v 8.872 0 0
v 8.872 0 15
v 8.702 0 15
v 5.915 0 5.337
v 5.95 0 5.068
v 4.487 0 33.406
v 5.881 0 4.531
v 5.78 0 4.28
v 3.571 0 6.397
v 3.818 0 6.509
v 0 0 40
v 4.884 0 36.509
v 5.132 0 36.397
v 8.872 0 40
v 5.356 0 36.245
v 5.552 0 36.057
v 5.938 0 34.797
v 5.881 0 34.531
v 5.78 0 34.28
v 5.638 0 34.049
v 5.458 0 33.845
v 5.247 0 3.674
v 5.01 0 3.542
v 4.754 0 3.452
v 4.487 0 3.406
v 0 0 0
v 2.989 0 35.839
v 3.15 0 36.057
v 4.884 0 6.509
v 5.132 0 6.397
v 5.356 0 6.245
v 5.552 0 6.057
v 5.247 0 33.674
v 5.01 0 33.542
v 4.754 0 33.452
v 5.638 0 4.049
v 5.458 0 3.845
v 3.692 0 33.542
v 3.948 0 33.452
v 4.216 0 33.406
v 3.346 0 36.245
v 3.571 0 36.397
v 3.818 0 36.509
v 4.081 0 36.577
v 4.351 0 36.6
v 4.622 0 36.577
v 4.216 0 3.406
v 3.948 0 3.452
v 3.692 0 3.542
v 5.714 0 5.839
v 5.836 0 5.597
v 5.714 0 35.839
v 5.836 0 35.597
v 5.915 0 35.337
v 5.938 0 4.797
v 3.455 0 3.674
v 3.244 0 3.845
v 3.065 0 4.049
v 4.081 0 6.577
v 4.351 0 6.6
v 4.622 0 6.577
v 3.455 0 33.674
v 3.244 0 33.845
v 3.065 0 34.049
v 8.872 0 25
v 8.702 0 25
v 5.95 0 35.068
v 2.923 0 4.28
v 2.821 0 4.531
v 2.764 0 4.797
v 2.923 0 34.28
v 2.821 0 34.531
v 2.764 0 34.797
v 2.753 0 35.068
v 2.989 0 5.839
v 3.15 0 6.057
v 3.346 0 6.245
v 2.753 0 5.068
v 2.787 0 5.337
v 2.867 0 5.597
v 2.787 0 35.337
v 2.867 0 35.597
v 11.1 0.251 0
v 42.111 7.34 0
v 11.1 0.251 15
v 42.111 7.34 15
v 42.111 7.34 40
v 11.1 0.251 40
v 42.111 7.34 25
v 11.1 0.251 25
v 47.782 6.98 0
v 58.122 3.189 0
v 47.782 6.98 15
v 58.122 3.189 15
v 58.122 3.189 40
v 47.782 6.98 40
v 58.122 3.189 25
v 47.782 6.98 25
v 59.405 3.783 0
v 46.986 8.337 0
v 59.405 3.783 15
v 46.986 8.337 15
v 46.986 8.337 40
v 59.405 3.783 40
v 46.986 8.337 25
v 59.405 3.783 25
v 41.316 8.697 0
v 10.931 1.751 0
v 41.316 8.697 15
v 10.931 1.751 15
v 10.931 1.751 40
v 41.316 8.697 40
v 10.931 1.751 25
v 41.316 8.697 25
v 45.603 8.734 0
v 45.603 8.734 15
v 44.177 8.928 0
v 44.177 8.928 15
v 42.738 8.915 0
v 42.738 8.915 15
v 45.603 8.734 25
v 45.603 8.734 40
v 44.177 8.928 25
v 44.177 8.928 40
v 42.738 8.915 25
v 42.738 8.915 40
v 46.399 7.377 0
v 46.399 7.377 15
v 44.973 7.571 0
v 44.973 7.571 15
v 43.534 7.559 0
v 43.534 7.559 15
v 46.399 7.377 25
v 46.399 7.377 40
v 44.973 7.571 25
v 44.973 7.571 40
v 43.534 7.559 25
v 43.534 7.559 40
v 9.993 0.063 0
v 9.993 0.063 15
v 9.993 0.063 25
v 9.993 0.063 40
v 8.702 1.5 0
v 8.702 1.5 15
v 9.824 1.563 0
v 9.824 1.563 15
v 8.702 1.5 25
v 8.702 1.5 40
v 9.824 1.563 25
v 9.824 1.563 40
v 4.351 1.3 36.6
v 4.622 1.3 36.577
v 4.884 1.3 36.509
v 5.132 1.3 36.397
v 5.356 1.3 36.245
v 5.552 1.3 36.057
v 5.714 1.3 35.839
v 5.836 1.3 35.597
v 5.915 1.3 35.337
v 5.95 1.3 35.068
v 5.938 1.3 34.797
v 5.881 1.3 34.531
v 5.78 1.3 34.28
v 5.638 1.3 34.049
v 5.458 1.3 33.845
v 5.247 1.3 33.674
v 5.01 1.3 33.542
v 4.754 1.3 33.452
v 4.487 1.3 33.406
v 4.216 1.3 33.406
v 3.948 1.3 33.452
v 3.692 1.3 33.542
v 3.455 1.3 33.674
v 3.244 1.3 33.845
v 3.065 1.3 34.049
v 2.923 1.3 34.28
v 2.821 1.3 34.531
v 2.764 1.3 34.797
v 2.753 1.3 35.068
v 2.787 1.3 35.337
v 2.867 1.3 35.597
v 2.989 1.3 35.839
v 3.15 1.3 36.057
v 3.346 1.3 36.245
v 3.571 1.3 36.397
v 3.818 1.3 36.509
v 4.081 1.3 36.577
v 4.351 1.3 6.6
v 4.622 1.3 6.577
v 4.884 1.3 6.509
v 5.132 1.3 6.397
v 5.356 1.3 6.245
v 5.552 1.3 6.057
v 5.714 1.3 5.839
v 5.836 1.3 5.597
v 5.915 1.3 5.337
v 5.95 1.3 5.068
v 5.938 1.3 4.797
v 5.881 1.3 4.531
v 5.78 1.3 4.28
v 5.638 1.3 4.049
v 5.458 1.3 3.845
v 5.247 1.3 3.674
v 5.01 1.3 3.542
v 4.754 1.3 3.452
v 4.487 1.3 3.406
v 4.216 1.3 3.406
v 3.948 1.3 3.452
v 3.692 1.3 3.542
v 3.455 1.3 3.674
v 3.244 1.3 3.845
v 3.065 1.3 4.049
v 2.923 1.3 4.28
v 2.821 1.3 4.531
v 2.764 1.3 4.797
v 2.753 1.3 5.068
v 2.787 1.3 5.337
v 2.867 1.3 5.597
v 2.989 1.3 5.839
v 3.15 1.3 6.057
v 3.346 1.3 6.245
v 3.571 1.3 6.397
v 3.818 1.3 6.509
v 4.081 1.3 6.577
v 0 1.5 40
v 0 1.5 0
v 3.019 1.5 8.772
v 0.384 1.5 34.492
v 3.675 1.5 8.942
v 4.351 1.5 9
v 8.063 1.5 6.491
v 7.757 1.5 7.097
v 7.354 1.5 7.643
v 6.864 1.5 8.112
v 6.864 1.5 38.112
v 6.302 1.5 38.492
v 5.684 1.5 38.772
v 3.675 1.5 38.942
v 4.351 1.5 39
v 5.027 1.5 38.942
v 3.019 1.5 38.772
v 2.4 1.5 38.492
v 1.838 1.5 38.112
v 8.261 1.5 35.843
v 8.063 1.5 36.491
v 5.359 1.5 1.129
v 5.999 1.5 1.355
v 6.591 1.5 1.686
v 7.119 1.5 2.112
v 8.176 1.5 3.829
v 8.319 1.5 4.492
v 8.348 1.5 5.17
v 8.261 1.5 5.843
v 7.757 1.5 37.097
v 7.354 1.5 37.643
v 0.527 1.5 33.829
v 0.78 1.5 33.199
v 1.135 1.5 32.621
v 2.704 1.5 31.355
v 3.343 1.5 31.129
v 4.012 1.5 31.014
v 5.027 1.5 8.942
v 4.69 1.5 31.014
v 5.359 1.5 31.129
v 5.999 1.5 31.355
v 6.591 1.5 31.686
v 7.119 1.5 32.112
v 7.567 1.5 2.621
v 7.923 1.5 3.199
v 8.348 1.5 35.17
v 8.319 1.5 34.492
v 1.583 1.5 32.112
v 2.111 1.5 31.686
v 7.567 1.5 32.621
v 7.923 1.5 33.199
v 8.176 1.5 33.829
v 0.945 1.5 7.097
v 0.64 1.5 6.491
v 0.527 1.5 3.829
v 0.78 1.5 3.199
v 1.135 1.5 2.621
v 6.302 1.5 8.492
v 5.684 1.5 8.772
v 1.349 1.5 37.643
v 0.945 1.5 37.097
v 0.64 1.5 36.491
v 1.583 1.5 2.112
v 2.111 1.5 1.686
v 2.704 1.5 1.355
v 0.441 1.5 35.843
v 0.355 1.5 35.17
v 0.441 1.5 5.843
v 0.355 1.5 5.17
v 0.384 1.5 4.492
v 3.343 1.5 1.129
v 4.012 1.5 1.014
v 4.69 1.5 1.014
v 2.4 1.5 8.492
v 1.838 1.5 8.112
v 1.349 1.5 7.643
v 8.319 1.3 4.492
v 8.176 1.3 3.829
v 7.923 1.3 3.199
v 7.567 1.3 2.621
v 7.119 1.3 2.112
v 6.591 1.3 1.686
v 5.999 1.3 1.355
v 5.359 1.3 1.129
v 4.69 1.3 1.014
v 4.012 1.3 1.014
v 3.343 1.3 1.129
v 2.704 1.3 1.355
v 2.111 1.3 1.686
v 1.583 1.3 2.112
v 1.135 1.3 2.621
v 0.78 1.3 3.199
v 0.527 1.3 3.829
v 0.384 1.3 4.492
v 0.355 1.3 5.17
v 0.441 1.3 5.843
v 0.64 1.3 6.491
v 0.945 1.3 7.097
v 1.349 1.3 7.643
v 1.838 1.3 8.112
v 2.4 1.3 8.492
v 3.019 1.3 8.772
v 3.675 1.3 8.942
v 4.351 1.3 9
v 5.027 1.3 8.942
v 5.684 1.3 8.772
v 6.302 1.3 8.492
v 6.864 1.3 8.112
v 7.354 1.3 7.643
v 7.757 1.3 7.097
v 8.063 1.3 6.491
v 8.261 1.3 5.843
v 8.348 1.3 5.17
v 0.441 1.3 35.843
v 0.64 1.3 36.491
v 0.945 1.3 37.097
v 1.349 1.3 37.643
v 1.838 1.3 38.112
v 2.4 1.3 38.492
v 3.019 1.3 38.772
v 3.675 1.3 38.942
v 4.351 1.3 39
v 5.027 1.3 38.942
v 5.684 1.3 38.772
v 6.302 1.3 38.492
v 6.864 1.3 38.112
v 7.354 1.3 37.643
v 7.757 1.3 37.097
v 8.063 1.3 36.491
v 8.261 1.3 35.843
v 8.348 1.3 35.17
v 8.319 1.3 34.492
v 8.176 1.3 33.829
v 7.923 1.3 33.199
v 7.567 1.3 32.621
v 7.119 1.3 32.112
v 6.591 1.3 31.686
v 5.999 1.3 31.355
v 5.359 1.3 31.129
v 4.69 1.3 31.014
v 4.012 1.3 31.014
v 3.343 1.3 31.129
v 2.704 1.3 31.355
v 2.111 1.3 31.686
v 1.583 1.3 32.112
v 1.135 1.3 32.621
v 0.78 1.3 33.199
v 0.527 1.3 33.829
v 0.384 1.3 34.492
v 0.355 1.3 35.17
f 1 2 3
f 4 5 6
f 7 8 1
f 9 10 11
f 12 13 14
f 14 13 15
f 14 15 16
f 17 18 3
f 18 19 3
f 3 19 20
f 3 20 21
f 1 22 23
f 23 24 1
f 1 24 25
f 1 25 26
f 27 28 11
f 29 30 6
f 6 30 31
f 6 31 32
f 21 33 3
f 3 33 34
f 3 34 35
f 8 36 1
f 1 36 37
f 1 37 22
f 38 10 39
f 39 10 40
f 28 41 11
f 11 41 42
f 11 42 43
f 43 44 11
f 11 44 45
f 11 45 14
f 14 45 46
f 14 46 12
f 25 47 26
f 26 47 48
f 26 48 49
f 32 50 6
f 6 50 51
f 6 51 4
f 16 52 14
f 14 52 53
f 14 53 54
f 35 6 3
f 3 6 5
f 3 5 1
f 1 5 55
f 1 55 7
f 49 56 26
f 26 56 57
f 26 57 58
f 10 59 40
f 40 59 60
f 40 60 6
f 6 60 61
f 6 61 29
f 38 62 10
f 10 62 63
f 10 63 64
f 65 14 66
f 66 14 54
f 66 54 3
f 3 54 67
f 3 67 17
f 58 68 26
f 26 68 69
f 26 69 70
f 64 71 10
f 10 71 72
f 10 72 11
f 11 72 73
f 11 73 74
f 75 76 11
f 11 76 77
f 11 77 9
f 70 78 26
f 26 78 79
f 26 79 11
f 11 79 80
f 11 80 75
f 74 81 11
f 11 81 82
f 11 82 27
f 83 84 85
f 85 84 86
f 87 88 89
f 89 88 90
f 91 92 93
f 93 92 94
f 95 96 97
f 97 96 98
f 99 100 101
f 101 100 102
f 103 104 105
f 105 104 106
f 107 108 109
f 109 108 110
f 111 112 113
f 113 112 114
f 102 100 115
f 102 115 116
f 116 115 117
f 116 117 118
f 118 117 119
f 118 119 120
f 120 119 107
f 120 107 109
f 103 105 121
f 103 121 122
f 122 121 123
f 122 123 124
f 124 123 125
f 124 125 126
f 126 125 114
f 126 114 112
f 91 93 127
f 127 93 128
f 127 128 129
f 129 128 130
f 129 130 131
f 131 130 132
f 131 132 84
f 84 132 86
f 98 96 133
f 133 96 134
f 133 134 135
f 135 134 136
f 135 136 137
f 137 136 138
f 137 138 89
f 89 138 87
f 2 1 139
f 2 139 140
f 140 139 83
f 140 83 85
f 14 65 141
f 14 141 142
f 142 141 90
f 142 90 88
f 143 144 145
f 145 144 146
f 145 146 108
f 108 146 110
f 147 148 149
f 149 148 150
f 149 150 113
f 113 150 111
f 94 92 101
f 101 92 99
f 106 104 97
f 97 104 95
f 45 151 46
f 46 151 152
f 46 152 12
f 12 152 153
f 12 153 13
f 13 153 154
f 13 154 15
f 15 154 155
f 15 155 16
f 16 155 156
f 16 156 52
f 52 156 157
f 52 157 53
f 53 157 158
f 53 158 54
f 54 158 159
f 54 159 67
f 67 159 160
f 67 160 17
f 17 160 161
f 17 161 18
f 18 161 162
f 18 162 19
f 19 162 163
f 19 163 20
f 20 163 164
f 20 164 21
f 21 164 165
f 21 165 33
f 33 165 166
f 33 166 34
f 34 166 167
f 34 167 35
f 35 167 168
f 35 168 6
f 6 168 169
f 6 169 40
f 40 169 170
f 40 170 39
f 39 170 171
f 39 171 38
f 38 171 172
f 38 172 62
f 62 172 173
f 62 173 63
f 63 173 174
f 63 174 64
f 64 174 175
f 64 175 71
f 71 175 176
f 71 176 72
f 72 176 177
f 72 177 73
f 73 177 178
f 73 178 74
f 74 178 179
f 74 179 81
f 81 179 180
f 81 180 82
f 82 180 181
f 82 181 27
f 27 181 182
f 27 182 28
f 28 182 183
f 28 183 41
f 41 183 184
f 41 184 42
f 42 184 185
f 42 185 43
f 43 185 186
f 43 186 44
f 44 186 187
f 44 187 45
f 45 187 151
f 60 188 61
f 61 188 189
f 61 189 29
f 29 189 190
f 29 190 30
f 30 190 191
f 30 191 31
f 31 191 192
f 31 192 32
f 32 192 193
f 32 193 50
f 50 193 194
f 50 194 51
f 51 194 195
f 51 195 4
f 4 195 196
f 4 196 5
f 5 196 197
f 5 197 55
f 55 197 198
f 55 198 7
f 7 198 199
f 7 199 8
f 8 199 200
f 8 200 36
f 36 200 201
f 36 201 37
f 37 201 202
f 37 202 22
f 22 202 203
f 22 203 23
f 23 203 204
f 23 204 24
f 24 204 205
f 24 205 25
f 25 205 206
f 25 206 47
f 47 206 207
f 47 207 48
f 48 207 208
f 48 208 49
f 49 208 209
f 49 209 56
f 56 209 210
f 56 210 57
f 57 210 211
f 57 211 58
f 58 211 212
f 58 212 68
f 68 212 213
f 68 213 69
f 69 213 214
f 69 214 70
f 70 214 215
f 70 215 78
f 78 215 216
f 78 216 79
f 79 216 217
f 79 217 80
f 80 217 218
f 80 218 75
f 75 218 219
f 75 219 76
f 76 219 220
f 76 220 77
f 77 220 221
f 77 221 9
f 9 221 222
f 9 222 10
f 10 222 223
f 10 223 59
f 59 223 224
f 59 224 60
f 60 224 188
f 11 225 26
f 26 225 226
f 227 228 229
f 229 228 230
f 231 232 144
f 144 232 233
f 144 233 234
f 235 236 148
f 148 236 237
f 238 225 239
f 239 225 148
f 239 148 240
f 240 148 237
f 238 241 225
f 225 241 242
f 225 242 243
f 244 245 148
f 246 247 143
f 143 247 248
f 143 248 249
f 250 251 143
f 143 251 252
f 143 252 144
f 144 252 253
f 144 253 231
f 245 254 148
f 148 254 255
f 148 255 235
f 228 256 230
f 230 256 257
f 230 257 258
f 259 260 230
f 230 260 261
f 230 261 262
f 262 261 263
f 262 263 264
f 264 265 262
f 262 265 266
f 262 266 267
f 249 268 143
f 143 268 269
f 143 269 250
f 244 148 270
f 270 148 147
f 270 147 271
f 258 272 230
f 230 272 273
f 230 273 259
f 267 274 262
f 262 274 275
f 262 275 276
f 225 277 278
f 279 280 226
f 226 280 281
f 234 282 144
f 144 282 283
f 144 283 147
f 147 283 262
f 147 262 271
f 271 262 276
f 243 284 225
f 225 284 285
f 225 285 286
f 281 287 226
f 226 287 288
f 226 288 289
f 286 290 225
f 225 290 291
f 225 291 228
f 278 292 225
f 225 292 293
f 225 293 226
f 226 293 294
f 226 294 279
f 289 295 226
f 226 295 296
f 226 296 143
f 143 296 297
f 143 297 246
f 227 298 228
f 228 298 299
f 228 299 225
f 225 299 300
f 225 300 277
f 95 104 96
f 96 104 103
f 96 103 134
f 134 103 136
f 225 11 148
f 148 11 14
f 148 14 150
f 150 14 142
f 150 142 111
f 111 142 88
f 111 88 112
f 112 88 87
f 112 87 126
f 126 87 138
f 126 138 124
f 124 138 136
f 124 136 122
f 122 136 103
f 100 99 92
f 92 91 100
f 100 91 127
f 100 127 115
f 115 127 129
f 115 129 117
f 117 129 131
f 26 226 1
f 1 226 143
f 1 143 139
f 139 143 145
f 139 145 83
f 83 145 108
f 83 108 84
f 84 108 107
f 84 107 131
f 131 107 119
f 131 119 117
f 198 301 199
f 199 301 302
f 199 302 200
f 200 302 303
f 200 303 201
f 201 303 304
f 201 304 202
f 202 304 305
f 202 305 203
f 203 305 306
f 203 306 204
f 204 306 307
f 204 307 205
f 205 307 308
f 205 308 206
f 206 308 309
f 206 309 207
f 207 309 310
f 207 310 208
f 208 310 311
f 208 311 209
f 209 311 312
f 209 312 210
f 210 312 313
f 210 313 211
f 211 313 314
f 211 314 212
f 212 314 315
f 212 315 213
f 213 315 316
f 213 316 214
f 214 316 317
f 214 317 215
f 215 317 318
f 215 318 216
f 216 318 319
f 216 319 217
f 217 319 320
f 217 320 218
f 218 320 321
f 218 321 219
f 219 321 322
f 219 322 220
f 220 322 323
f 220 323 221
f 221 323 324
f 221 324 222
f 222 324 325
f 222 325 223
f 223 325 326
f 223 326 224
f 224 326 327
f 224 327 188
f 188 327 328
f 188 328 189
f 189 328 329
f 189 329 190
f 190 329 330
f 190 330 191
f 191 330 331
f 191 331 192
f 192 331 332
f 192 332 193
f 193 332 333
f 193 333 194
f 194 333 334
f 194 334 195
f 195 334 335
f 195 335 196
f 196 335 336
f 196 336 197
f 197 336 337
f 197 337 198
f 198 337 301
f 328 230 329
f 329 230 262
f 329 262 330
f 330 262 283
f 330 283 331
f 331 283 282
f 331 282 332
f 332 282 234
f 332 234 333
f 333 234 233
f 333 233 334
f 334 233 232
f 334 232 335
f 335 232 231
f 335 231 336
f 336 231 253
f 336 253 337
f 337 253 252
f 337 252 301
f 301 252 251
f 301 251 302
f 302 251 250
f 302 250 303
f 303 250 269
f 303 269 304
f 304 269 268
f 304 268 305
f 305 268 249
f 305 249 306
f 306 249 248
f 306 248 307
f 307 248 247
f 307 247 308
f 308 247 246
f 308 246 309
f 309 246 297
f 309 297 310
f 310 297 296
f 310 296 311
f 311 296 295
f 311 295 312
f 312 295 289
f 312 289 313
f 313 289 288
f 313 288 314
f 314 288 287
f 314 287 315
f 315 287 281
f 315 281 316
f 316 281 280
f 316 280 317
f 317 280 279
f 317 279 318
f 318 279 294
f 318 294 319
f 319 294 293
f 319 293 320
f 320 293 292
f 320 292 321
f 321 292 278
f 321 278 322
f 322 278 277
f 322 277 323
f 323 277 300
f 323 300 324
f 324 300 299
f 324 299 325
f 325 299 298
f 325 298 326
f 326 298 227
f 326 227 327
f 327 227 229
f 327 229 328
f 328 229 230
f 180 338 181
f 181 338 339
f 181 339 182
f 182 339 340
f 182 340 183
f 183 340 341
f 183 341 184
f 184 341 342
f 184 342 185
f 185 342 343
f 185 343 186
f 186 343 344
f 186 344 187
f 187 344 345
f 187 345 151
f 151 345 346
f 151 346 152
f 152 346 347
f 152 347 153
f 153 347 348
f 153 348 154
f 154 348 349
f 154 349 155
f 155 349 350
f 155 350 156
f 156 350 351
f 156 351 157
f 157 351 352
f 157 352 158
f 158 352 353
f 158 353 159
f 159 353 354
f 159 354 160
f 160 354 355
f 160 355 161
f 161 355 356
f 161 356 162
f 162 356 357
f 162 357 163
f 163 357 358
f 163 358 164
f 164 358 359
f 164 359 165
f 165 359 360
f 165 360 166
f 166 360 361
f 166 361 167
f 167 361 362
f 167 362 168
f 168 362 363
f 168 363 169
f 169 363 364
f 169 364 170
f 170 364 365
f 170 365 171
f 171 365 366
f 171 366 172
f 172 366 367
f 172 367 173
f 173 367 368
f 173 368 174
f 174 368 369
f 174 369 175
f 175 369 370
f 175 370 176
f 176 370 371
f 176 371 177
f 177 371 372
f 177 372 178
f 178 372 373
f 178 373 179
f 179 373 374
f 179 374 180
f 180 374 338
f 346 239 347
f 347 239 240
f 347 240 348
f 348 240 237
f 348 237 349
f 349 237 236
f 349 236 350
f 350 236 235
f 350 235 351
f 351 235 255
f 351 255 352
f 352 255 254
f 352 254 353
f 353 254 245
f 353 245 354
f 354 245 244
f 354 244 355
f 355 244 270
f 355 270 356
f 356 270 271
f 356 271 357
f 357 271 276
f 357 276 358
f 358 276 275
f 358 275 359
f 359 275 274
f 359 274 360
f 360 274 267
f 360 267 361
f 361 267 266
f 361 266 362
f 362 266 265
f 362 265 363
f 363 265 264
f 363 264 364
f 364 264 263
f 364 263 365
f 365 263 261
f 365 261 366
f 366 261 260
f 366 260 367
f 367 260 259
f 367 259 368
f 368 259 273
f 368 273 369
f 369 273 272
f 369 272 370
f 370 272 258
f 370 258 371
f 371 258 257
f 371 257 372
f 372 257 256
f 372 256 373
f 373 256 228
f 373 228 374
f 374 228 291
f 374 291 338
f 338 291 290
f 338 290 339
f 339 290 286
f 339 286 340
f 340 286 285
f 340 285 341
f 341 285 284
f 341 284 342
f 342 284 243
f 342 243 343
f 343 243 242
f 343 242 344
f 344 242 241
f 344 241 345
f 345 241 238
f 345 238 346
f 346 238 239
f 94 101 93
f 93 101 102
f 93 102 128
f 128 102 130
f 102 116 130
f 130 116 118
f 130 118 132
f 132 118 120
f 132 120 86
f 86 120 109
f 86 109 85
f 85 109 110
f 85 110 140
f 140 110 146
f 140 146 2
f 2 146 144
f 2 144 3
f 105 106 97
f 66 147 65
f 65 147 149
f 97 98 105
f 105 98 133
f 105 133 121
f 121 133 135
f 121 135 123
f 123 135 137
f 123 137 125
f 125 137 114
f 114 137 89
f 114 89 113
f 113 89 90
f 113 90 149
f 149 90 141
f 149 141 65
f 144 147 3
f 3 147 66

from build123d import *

# Parameters (mm, degrees)
EXTRUDE_1_DEPTH                 = 40
FILLET_1_R                      = 10
CHAMFER_1_SIZE                  = 2
CHAMFER_1_SIZE_2                = 1.558687347
CUT_EXTRUDE_1_REACH             = 74.003
SKETCH_2_R                      = 1.6
SKETCH_3_R                      = 4
CUT_EXTRUDE_2_DEPTH             = 0.2
CUT_EXTRUDE_3_REACH             = 74.003
SKETCH_4_W                      = 50.702932162
SKETCH_4_H                      = 10
CUT_EXTRUDE_3_DIRECTION_2_REACH = 74.003


with BuildPart() as part:
    # 草图1 → 凸台-拉伸1 (new body)
    with BuildSketch(Plane.XY):
        Polygon((0, 0), (10, 0), (45, 8), (60, 2.5), (60, 3.565103021), (44.204382552, 9.356829418), (9.830753848, 1.5), (0, 1.5), align=None)
    extrude(amount=EXTRUDE_1_DEPTH)

    # 圆角1
    fillet_1_edges = [part.edges().sort_by_distance(p)[0] for p in [
        (9.830753848, 1.5, 20),
        (44.204382552, 9.356829418, 20),
        (45, 8, 20),
        (10, 0, 20),
    ]]
    fillet(fillet_1_edges, radius=FILLET_1_R)

    # 倒角1
    # the kernel refuses this chamfer: 2, 1.558687347 mm, written as the material it takes off along each edge
    with BuildSketch(Plane(origin=(60, 2.5, -5.143365976), x_dir=(-0.9479869259850683, 0.31830926496314954, 0), z_dir=(0, 0, 1))) as chamfer_1_piece_1:
        Polygon((CHAMFER_1_SIZE * 0.999621916911, -CHAMFER_1_SIZE * 0.0274958766106), (CHAMFER_1_SIZE_2 * 0.318309265001, -CHAMFER_1_SIZE_2 * 0.947986926099), (0, 0), align=None)
    extrude(amount=50.286731952, mode=Mode.SUBTRACT)

    # 草图2 → 切除-拉伸1 (cut, up to next)
    with BuildSketch(Plane(origin=(0, 1.5, 0), x_dir=(1, 0, 0), z_dir=(0, 1, 0)), mode=Mode.PRIVATE) as cut_extrude_1_sk1:
        with Locations(Location((4.351223085, -5, 0), (0, 0, 270))):
            Circle(SKETCH_2_R)
    cut_extrude_1_tool1 = extrude(cut_extrude_1_sk1.sketch, amount=-CUT_EXTRUDE_1_REACH, mode=Mode.PRIVATE) & part.part
    # 草图2 → 切除-拉伸1 (cut, up to next)
    with BuildSketch(Plane(origin=(0, 1.5, 0), x_dir=(1, 0, 0), z_dir=(0, 1, 0)), mode=Mode.PRIVATE) as cut_extrude_1_sk2:
        with Locations(Location((4.351223085, -35, 0), (0, 0, 270))):
            Circle(SKETCH_2_R)
    cut_extrude_1_tool2 = extrude(cut_extrude_1_sk2.sketch, amount=-CUT_EXTRUDE_1_REACH, mode=Mode.PRIVATE) & part.part
    add(cut_extrude_1_tool1.solids().sort_by_distance((4.351223, 1.5, 5))[0], mode=Mode.SUBTRACT)
    add(cut_extrude_1_tool2.solids().sort_by_distance((4.351223, 1.5, 35))[0], mode=Mode.SUBTRACT)

    # 草图3 → 切除-拉伸2 (cut)
    with BuildSketch(Plane(origin=(0, 1.5, 0), x_dir=(1, 0, 0), z_dir=(0, 1, 0))):
        with Locations(Location((4.351223085, -5, 0), (0, 0, 270))):
            Circle(SKETCH_3_R)
        with Locations(Location((4.351223085, -35, 0), (0, 0, 270))):
            Circle(SKETCH_3_R)
    extrude(amount=-CUT_EXTRUDE_2_DEPTH, mode=Mode.SUBTRACT)

    # 草图4 → 切除-拉伸3 (cut, up to next)
    with BuildSketch(Plane(origin=(0, 1.5, 0), x_dir=(1, 0, 0), z_dir=(0, 1, 0)), mode=Mode.PRIVATE) as cut_extrude_3_sk1:
        with Locations((34.053912252, -20)):
            Rectangle(SKETCH_4_W, SKETCH_4_H)
    cut_extrude_3_tool1 = extrude(cut_extrude_3_sk1.sketch, amount=-CUT_EXTRUDE_3_REACH, mode=Mode.PRIVATE) & part.part
    add(cut_extrude_3_tool1.solids().sort_by_distance((34.053912, 1.5, 20))[0], mode=Mode.SUBTRACT)

    # 草图4 → 切除-拉伸3 direction 2 (cut, up to next)
    with BuildSketch(Plane(origin=(0, 1.5, 0), x_dir=(1, 0, 0), z_dir=(0, 1, 0)), mode=Mode.PRIVATE) as cut_extrude_3_direction_2_sk1:
        with Locations((34.053912252, -20)):
            Rectangle(SKETCH_4_W, SKETCH_4_H)
    cut_extrude_3_direction_2_tool1 = extrude(cut_extrude_3_direction_2_sk1.sketch, amount=CUT_EXTRUDE_3_DIRECTION_2_REACH, mode=Mode.PRIVATE) & part.part
    add(cut_extrude_3_direction_2_tool1.solids().sort_by_distance((34.053912, 1.5, 20))[0], mode=Mode.SUBTRACT)


solid = part.part
